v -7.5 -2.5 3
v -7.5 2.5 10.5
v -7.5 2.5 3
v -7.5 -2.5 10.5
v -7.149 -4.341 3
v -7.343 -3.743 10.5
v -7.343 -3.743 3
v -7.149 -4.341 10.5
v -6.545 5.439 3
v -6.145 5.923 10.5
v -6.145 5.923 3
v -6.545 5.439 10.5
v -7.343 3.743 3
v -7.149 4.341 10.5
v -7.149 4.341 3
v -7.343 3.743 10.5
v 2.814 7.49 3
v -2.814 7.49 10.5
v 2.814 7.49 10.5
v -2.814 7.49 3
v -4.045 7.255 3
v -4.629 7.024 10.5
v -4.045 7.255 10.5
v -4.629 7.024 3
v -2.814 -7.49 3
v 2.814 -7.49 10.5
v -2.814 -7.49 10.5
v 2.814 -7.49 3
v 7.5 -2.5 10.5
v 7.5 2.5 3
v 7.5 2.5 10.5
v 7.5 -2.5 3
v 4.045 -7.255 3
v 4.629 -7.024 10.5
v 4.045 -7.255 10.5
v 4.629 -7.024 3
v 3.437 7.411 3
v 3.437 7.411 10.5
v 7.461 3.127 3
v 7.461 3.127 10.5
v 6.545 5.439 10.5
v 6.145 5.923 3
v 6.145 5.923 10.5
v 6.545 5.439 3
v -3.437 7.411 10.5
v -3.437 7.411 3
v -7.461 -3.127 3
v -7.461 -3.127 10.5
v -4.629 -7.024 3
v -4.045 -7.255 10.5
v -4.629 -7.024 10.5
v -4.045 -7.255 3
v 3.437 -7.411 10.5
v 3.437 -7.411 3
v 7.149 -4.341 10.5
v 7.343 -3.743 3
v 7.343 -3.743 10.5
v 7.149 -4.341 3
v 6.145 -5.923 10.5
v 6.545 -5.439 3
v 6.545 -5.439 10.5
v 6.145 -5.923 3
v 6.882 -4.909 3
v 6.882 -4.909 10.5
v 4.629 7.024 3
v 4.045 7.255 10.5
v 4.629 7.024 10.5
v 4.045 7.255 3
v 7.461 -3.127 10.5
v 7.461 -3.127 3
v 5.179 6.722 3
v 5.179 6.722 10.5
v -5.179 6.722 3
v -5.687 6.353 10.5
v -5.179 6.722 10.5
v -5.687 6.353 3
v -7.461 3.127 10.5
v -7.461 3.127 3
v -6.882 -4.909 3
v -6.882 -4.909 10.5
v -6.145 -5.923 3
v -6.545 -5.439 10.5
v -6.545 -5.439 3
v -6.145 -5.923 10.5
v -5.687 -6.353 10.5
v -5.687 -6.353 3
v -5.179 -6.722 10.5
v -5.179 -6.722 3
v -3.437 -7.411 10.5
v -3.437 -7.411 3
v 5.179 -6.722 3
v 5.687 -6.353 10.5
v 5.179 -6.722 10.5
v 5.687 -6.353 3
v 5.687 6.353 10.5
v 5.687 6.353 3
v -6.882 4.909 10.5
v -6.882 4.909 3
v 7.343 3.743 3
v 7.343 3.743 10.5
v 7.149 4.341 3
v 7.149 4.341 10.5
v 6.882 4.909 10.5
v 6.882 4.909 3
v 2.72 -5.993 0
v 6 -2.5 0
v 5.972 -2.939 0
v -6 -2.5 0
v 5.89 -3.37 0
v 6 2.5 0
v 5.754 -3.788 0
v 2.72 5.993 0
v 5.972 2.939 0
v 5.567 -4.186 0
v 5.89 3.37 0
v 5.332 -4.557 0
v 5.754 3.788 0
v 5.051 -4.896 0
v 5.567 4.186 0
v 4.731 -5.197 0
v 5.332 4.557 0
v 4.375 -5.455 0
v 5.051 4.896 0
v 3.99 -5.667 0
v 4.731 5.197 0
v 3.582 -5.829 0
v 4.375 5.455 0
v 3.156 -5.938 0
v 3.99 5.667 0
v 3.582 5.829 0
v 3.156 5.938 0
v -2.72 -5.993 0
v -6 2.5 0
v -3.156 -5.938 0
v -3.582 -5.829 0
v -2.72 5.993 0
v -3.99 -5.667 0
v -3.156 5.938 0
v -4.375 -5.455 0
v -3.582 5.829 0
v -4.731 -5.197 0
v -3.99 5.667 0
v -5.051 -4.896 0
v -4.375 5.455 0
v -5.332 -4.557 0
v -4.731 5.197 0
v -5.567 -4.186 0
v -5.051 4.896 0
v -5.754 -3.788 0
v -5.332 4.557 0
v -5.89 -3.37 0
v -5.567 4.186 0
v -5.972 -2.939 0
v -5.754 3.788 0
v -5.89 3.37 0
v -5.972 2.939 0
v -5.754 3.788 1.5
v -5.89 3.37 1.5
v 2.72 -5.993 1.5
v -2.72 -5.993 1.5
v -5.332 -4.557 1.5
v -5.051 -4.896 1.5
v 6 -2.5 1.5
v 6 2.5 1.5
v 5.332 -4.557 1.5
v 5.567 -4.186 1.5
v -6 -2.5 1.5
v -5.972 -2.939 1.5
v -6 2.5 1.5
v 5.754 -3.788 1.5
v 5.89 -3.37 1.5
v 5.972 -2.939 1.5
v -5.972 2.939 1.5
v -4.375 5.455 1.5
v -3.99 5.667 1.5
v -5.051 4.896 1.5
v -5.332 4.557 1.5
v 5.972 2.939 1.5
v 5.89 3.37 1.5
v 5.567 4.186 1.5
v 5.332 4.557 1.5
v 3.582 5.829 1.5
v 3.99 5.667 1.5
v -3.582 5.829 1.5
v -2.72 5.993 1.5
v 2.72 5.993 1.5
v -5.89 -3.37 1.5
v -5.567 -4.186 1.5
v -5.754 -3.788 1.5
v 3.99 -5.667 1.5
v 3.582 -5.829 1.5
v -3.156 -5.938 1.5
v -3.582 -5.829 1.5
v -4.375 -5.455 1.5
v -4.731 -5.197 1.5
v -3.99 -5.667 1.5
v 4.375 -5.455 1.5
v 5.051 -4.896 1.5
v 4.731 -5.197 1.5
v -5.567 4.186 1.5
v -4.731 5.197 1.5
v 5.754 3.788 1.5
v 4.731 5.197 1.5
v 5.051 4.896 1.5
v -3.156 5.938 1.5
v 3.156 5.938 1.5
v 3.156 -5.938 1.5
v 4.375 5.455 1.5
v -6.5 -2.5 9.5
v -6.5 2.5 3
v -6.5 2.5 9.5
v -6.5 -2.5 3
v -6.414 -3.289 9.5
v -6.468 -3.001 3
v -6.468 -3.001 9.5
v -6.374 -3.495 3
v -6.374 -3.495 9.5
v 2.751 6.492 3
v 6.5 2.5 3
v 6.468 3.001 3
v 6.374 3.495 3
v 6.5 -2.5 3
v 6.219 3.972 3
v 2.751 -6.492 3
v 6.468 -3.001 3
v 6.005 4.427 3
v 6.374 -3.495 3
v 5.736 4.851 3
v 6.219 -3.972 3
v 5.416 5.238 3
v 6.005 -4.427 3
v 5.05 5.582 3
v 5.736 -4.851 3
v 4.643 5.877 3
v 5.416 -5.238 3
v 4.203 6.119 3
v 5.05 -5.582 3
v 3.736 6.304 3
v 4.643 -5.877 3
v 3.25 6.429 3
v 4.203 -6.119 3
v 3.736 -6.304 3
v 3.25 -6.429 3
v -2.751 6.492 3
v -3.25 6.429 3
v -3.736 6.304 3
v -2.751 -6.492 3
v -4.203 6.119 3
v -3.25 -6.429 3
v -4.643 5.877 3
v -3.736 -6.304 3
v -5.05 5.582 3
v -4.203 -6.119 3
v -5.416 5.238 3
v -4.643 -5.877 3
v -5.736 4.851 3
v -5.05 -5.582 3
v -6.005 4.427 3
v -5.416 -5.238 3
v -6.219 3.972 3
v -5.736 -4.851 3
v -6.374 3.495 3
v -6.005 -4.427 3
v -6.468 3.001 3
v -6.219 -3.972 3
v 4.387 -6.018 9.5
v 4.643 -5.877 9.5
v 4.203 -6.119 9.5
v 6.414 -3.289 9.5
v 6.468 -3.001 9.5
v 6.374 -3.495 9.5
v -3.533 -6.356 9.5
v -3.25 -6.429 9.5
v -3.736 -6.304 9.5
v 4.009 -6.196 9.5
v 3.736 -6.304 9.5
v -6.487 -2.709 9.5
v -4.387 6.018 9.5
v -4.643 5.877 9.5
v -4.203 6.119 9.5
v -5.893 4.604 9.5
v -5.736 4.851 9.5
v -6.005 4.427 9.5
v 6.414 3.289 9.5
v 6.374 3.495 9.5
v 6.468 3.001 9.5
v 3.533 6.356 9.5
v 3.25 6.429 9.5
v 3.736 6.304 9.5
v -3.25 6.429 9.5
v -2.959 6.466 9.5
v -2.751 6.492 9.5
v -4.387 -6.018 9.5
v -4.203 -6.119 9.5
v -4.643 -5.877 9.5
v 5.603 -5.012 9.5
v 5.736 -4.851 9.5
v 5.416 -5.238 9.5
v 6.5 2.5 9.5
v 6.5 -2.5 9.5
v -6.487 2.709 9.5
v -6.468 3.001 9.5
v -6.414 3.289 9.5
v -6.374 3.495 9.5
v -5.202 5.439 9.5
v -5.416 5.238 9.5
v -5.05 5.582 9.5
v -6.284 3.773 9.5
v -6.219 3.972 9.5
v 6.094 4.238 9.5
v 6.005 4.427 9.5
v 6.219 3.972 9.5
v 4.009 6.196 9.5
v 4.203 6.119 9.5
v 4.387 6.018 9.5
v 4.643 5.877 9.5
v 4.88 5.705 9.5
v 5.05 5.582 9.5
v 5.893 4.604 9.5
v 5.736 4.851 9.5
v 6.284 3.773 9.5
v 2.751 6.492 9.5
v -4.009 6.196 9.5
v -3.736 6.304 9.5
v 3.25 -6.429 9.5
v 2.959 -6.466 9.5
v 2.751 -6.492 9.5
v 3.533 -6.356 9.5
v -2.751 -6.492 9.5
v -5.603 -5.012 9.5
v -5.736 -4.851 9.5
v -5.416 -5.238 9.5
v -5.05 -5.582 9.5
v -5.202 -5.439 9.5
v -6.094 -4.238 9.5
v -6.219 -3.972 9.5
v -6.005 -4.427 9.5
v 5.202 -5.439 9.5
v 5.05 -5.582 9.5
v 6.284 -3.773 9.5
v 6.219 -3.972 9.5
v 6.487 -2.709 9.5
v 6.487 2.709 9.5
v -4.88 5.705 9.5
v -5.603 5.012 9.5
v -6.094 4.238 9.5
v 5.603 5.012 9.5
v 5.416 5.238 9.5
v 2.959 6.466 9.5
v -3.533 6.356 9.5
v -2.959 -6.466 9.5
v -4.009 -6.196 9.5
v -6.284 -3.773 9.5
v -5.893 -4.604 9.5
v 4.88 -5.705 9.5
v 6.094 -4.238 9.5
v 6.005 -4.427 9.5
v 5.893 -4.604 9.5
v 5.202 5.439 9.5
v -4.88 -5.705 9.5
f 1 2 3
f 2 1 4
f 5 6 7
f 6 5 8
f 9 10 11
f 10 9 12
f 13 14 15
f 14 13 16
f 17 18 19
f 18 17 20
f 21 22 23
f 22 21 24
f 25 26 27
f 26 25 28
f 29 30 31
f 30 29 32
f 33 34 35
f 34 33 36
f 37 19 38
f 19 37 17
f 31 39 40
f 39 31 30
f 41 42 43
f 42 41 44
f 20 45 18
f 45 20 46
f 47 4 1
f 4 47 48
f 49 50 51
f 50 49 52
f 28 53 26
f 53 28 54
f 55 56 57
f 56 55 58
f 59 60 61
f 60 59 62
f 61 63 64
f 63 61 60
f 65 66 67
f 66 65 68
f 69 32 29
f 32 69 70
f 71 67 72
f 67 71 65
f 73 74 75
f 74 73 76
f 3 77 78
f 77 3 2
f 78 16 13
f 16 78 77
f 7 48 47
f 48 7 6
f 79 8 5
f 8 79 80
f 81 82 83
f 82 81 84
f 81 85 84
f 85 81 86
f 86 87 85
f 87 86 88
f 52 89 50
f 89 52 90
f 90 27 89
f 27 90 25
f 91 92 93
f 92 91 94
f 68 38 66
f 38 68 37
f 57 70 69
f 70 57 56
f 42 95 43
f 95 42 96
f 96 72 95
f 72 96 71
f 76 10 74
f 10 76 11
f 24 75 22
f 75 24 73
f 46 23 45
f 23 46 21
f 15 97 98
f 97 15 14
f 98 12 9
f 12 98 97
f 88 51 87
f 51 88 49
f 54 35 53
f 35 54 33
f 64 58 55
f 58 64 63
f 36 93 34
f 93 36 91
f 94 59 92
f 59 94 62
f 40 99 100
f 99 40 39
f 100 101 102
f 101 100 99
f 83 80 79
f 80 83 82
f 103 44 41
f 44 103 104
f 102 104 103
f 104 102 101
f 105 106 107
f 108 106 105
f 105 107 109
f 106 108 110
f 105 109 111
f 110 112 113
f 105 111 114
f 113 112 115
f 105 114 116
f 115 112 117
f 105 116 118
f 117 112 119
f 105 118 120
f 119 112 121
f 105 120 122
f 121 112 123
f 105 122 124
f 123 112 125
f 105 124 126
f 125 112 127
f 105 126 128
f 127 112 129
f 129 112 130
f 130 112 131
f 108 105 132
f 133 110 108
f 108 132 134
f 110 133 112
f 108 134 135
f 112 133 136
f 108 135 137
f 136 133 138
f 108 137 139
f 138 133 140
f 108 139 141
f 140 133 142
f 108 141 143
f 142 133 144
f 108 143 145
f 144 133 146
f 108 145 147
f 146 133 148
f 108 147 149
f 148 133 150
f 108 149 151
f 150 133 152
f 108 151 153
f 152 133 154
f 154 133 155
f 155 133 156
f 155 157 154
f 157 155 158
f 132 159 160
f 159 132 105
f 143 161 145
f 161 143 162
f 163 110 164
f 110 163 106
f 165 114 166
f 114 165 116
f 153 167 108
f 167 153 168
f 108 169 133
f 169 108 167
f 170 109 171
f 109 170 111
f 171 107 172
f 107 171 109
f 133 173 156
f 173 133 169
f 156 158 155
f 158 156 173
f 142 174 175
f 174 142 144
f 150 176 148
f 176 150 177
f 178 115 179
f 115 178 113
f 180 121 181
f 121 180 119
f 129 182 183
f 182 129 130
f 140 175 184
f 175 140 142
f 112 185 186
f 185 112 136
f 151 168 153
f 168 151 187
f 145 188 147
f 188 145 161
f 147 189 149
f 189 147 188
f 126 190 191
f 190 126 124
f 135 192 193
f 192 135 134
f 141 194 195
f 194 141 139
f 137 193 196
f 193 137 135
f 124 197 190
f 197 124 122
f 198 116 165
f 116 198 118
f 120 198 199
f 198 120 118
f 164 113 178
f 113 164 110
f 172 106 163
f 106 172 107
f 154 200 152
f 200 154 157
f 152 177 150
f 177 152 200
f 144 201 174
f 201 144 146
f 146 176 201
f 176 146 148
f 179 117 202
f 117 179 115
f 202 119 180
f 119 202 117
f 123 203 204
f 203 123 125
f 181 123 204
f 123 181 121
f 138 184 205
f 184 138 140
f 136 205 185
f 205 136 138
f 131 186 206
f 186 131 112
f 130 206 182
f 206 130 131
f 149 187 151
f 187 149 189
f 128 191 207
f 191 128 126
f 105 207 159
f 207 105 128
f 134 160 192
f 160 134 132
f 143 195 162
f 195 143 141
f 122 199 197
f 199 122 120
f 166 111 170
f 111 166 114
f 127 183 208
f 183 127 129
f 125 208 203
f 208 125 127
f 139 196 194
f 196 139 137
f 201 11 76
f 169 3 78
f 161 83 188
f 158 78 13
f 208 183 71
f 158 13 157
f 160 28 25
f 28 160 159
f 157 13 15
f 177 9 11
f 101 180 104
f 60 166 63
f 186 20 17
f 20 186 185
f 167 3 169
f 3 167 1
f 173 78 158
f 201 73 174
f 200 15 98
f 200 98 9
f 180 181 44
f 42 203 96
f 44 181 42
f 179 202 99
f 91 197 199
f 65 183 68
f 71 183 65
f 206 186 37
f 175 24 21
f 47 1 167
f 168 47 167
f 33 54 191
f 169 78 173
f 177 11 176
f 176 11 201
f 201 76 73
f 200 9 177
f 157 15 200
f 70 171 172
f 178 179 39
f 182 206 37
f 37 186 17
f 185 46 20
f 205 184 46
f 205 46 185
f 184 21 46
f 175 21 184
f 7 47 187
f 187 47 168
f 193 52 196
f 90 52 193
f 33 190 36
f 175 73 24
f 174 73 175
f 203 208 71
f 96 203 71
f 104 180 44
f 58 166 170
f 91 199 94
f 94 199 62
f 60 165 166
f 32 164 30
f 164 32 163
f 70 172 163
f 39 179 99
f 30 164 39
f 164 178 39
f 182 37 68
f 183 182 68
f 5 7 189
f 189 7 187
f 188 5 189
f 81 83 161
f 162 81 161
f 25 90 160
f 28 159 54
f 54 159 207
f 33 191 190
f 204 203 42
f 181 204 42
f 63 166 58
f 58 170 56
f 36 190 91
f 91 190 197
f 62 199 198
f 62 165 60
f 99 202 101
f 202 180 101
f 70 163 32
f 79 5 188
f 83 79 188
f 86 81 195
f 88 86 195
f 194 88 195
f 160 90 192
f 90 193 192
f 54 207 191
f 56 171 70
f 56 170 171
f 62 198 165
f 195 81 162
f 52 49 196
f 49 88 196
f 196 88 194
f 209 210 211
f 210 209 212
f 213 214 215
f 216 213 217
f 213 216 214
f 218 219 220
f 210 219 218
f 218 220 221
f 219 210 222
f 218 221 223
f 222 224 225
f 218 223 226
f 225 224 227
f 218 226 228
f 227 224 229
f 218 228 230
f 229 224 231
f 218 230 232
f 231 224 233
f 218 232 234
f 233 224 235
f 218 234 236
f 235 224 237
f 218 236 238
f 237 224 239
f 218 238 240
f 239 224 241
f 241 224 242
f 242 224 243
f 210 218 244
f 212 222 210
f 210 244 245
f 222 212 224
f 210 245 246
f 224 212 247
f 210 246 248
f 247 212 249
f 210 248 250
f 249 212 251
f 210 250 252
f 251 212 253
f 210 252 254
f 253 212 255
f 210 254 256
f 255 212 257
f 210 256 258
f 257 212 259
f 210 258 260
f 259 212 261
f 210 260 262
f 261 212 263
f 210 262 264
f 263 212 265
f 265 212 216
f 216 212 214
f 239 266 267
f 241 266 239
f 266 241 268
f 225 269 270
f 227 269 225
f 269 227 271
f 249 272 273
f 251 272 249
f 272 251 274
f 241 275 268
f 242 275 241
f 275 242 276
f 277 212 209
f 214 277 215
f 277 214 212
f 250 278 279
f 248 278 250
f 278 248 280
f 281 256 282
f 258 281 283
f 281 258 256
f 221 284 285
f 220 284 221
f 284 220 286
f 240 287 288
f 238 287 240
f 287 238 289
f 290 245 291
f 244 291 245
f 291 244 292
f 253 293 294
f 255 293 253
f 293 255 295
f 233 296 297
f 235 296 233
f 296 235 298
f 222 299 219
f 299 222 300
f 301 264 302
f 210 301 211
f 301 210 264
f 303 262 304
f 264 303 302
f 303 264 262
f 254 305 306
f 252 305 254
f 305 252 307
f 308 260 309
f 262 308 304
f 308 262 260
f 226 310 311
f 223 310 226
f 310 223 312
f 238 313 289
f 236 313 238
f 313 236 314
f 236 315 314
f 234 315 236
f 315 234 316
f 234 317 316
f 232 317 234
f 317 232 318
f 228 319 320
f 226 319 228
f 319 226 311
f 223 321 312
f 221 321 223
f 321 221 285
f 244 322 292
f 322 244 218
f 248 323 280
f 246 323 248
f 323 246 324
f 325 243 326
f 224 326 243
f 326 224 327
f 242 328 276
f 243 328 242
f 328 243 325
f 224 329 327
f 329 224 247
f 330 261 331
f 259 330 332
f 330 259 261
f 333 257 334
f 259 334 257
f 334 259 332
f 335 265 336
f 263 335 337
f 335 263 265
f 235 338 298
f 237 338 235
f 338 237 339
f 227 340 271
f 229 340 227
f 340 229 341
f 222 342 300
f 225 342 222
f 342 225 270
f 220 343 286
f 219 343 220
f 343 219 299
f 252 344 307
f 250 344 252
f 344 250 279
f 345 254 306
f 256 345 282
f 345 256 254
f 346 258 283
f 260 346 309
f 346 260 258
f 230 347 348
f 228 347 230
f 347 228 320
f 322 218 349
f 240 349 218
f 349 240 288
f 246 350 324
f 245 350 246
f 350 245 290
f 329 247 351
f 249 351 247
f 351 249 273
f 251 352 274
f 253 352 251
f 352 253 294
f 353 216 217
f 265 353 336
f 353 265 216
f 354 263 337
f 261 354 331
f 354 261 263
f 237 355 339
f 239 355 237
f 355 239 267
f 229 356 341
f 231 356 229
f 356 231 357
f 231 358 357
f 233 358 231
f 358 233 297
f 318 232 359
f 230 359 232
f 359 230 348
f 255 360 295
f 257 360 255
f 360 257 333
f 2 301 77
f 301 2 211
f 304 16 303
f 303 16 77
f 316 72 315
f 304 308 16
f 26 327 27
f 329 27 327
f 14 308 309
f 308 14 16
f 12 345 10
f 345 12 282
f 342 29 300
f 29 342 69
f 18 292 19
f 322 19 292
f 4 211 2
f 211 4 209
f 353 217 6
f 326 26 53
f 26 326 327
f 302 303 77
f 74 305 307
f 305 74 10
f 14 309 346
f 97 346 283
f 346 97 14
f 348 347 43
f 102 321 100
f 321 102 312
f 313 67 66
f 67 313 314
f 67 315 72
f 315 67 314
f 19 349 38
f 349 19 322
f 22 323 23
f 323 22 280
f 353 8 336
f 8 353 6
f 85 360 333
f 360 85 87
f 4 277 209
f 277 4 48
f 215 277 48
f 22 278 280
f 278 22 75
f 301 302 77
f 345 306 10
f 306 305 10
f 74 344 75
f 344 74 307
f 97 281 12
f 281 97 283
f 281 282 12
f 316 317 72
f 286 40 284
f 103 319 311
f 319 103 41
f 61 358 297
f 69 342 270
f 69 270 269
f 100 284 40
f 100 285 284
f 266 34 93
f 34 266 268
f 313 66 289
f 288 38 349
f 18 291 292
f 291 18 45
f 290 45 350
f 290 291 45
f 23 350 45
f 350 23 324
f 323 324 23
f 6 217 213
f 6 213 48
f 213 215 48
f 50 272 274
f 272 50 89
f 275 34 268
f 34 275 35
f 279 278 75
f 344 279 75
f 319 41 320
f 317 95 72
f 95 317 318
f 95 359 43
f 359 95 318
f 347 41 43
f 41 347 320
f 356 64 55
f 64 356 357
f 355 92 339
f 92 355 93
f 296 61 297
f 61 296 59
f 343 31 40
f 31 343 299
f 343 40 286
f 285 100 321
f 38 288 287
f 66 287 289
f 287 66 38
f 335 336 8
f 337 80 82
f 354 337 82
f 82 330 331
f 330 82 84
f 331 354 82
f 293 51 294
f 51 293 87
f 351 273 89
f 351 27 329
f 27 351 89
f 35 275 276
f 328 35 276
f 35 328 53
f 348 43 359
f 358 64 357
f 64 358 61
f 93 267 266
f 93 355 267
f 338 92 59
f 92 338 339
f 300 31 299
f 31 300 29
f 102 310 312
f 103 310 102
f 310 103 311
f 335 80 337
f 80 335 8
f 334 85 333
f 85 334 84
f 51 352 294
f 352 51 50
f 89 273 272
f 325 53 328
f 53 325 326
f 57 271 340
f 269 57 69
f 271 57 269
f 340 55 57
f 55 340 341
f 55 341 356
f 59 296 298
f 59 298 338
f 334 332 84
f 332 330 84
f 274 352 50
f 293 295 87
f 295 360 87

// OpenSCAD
$fn = 50;


difference() {
	union() {
		translate(v = [0, 0, 3.0000000000]) {
			hull() {
				translate(v = [-2.5000000000, 2.5000000000, 0]) {
					cylinder(h = 7.5000000000, r = 5);
				}
				translate(v = [2.5000000000, 2.5000000000, 0]) {
					cylinder(h = 7.5000000000, r = 5);
				}
				translate(v = [-2.5000000000, -2.5000000000, 0]) {
					cylinder(h = 7.5000000000, r = 5);
				}
				translate(v = [2.5000000000, -2.5000000000, 0]) {
					cylinder(h = 7.5000000000, r = 5);
				}
			}
		}
		hull() {
			translate(v = [-2.5000000000, 2.5000000000, 0]) {
				cylinder(h = 1.5000000000, r = 3.5000000000);
			}
			translate(v = [2.5000000000, 2.5000000000, 0]) {
				cylinder(h = 1.5000000000, r = 3.5000000000);
			}
			translate(v = [-2.5000000000, -2.5000000000, 0]) {
				cylinder(h = 1.5000000000, r = 3.5000000000);
			}
			translate(v = [2.5000000000, -2.5000000000, 0]) {
				cylinder(h = 1.5000000000, r = 3.5000000000);
			}
		}
		translate(v = [0, 0, 1.5000000000]) {
			hull() {
				translate(v = [-2.5000000000, 2.5000000000, 0]) {
					cylinder(h = 1.5000000000, r1 = 3.5000000000, r2 = 5.0000000000);
				}
				translate(v = [2.5000000000, 2.5000000000, 0]) {
					cylinder(h = 1.5000000000, r1 = 3.5000000000, r2 = 5.0000000000);
				}
				translate(v = [-2.5000000000, -2.5000000000, 0]) {
					cylinder(h = 1.5000000000, r1 = 3.5000000000, r2 = 5.0000000000);
				}
				translate(v = [2.5000000000, -2.5000000000, 0]) {
					cylinder(h = 1.5000000000, r1 = 3.5000000000, r2 = 5.0000000000);
				}
			}
		}
		translate(v = [0, 0, 1.5000000000]) {
			#hull() {
				translate(v = [-2.5000000000, 2.5000000000, 0]) {
					cylinder(h = 1.5000000000, r1 = 2.5000000000, r2 = 4.0000000000);
				}
				translate(v = [2.5000000000, 2.5000000000, 0]) {
					cylinder(h = 1.5000000000, r1 = 2.5000000000, r2 = 4.0000000000);
				}
				translate(v = [-2.5000000000, -2.5000000000, 0]) {
					cylinder(h = 1.5000000000, r1 = 2.5000000000, r2 = 4.0000000000);
				}
				translate(v = [2.5000000000, -2.5000000000, 0]) {
					cylinder(h = 1.5000000000, r1 = 2.5000000000, r2 = 4.0000000000);
				}
			}
		}
	}
	union() {
		translate(v = [0, 0, 3.0000000000]) {
			#hull() {
				translate(v = [-2.5000000000, 2.5000000000, 0]) {
					cylinder(h = 7.5000000000, r = 4);
				}
				translate(v = [2.5000000000, 2.5000000000, 0]) {
					cylinder(h = 7.5000000000, r = 4);
				}
				translate(v = [-2.5000000000, -2.5000000000, 0]) {
					cylinder(h = 7.5000000000, r = 4);
				}
				translate(v = [2.5000000000, -2.5000000000, 0]) {
					cylinder(h = 7.5000000000, r = 4);
				}
			}
		}
		translate(v = [0, 0, 9]) {
			hull() {
				translate(v = [-2.5000000000, 2.5000000000, 0]) {
					cylinder(h = 1.5000000000, r1 = 3.5000000000, r2 = 5.0000000000);
				}
				translate(v = [2.5000000000, 2.5000000000, 0]) {
					cylinder(h = 1.5000000000, r1 = 3.5000000000, r2 = 5.0000000000);
				}
				translate(v = [-2.5000000000, -2.5000000000, 0]) {
					cylinder(h = 1.5000000000, r1 = 3.5000000000, r2 = 5.0000000000);
				}
				translate(v = [2.5000000000, -2.5000000000, 0]) {
					cylinder(h = 1.5000000000, r1 = 3.5000000000, r2 = 5.0000000000);
				}
			}
		}
	}
}
